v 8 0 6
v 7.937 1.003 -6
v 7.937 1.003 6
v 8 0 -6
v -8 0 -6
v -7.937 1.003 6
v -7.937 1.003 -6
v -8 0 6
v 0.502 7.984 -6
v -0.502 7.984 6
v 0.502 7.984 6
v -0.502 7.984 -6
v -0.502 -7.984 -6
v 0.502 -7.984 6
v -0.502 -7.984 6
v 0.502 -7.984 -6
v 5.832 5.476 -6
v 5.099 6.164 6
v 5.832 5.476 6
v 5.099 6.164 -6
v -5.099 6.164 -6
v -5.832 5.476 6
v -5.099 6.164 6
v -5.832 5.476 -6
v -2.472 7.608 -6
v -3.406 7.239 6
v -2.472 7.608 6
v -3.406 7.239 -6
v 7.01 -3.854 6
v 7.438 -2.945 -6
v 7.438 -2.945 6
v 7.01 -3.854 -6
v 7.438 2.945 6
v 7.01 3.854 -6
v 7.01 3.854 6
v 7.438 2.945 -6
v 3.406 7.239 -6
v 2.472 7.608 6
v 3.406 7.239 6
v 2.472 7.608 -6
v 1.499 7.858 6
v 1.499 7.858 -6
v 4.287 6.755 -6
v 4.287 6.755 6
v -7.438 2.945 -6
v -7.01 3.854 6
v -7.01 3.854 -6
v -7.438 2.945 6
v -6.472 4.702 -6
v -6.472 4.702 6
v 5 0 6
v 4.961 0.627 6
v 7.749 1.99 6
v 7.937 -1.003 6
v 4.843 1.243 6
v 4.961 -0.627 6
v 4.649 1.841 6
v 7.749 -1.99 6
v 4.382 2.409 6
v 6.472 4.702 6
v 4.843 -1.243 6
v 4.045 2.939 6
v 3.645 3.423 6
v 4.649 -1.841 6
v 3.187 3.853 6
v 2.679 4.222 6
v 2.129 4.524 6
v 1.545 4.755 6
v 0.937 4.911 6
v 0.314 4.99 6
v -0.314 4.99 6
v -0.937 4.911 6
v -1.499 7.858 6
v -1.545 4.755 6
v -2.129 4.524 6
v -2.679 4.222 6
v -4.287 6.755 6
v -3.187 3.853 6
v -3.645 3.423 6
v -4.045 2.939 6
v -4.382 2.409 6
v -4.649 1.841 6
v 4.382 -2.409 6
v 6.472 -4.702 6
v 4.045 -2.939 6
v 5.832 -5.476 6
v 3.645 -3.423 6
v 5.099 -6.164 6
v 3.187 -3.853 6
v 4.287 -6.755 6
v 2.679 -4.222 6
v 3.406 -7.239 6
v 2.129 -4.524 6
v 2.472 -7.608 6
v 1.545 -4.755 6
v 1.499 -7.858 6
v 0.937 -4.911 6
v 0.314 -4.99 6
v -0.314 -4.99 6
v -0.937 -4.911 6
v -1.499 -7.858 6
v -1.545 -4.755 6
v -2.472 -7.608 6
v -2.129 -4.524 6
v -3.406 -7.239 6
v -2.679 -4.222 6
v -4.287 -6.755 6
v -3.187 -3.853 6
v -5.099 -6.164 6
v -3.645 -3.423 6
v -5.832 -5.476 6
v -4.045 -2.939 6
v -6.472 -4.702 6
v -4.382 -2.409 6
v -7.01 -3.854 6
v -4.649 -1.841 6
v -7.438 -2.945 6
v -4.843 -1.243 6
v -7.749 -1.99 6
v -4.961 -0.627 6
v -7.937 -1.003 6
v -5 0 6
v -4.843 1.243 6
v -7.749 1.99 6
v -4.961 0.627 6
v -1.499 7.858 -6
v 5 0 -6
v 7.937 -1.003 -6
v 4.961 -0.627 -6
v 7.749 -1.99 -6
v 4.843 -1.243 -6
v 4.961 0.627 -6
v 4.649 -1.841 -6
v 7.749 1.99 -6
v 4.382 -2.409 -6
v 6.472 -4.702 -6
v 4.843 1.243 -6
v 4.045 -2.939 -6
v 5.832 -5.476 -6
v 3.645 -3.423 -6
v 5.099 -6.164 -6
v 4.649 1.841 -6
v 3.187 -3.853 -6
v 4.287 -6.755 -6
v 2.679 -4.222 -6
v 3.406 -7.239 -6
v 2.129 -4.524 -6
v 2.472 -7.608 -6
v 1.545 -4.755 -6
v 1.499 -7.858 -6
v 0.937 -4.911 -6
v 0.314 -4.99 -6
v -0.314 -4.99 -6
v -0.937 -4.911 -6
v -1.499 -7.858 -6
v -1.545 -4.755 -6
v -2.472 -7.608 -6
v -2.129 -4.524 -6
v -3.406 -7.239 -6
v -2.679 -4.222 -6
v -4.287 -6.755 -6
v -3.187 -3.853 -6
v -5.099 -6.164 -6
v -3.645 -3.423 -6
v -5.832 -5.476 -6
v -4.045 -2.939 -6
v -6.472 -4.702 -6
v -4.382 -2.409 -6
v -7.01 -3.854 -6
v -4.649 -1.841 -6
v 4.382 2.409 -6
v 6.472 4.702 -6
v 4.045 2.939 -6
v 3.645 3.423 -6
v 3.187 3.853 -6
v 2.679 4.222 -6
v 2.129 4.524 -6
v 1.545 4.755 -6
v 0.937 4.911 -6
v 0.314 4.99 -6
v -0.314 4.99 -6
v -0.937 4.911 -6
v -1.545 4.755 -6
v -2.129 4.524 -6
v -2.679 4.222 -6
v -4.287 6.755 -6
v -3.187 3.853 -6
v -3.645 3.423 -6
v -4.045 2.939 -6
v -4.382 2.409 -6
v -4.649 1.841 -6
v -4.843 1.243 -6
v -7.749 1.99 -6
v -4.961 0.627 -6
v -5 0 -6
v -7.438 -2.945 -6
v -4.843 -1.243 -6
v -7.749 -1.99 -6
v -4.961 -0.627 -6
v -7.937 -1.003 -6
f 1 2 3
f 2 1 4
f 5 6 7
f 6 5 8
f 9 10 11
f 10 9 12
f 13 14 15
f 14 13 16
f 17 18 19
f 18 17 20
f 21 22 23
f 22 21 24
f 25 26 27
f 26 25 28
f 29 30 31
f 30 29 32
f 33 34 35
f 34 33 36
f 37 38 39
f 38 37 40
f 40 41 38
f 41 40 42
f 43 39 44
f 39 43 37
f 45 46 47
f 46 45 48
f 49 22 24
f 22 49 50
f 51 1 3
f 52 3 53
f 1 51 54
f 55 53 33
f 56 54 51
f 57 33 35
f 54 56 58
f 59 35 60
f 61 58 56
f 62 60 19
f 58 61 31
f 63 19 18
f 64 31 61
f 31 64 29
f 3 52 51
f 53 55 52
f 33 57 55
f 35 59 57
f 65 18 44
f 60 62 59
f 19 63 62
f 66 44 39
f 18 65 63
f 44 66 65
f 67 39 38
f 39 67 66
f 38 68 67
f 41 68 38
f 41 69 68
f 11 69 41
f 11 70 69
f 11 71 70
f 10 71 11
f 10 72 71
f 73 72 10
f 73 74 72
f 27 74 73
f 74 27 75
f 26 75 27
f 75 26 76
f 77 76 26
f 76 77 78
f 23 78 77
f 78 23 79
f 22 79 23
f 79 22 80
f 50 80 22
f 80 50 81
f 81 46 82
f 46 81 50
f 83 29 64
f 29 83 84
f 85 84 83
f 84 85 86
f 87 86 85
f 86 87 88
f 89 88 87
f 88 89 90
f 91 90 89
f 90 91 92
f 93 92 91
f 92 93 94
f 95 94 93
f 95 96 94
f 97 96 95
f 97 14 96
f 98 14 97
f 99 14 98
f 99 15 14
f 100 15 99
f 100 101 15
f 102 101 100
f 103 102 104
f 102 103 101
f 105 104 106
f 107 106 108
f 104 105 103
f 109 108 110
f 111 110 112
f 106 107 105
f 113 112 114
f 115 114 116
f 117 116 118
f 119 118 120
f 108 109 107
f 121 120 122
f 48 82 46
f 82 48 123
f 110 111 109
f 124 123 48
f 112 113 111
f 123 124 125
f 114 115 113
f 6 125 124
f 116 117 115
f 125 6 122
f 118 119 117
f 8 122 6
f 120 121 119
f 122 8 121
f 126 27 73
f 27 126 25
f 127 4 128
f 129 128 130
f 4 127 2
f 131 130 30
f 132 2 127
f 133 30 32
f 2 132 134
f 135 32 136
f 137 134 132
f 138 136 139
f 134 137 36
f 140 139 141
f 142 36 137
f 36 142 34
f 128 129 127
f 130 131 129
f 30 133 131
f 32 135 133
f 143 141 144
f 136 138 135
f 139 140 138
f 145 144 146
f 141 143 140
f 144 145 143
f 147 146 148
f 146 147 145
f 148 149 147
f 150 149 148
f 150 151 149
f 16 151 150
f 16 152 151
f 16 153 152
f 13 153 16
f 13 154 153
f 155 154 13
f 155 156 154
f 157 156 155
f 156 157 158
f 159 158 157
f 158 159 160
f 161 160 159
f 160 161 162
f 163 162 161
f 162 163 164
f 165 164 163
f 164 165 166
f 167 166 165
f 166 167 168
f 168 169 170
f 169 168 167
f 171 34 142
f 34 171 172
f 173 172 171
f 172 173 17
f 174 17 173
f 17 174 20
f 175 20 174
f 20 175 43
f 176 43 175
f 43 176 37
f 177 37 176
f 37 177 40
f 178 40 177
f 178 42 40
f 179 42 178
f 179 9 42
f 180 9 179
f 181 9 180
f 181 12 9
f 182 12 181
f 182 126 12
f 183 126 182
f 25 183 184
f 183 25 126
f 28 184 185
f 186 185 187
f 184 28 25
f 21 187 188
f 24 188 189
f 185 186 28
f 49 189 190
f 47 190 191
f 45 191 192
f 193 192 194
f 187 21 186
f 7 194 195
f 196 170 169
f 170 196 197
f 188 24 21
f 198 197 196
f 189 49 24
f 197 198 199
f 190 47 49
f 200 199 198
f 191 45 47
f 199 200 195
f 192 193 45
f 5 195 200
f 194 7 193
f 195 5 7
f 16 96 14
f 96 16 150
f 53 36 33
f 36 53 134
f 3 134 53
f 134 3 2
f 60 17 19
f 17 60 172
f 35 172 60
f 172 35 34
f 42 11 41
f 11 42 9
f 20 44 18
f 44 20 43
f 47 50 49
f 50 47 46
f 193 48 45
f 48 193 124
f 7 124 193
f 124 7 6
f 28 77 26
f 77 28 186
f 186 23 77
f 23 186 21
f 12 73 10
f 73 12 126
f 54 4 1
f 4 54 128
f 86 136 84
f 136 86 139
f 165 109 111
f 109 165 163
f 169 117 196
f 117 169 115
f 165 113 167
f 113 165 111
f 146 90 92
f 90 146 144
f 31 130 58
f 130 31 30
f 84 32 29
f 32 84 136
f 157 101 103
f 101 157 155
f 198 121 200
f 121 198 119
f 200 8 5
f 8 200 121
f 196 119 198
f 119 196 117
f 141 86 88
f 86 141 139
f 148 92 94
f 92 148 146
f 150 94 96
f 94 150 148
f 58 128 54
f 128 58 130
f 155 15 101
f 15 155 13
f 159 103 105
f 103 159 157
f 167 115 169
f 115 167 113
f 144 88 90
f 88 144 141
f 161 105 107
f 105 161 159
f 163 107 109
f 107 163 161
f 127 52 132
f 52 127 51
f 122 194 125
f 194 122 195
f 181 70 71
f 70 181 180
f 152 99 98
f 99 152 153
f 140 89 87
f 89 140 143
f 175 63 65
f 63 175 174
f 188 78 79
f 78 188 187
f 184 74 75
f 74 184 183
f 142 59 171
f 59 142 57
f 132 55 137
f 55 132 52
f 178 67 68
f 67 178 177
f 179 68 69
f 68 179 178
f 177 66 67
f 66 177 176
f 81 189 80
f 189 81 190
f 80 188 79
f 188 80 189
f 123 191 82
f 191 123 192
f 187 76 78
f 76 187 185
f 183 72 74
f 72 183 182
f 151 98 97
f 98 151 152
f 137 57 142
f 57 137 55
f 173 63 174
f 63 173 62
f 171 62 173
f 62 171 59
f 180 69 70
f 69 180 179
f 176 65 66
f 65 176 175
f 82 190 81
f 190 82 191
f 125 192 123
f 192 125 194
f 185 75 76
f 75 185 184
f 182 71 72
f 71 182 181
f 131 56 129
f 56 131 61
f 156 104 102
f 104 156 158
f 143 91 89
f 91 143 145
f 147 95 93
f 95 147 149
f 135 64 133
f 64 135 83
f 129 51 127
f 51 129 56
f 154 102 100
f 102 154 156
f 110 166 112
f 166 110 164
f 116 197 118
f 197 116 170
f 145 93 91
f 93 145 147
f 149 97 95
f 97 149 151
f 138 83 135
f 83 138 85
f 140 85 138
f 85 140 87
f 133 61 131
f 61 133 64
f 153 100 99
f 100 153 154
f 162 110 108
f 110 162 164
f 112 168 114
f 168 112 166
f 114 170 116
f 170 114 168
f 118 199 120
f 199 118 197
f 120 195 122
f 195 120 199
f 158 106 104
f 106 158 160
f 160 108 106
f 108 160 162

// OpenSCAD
$fn = 50;


difference() {
	union() {
		translate(v = [0, 0, -6.0000000000]) {
			cylinder(h = 12, r = 8.0000000000);
		}
	}
	union() {
		translate(v = [0, 0, -100.0000000000]) {
			cylinder(h = 200, r = 5.0000000000);
		}
	}
}
